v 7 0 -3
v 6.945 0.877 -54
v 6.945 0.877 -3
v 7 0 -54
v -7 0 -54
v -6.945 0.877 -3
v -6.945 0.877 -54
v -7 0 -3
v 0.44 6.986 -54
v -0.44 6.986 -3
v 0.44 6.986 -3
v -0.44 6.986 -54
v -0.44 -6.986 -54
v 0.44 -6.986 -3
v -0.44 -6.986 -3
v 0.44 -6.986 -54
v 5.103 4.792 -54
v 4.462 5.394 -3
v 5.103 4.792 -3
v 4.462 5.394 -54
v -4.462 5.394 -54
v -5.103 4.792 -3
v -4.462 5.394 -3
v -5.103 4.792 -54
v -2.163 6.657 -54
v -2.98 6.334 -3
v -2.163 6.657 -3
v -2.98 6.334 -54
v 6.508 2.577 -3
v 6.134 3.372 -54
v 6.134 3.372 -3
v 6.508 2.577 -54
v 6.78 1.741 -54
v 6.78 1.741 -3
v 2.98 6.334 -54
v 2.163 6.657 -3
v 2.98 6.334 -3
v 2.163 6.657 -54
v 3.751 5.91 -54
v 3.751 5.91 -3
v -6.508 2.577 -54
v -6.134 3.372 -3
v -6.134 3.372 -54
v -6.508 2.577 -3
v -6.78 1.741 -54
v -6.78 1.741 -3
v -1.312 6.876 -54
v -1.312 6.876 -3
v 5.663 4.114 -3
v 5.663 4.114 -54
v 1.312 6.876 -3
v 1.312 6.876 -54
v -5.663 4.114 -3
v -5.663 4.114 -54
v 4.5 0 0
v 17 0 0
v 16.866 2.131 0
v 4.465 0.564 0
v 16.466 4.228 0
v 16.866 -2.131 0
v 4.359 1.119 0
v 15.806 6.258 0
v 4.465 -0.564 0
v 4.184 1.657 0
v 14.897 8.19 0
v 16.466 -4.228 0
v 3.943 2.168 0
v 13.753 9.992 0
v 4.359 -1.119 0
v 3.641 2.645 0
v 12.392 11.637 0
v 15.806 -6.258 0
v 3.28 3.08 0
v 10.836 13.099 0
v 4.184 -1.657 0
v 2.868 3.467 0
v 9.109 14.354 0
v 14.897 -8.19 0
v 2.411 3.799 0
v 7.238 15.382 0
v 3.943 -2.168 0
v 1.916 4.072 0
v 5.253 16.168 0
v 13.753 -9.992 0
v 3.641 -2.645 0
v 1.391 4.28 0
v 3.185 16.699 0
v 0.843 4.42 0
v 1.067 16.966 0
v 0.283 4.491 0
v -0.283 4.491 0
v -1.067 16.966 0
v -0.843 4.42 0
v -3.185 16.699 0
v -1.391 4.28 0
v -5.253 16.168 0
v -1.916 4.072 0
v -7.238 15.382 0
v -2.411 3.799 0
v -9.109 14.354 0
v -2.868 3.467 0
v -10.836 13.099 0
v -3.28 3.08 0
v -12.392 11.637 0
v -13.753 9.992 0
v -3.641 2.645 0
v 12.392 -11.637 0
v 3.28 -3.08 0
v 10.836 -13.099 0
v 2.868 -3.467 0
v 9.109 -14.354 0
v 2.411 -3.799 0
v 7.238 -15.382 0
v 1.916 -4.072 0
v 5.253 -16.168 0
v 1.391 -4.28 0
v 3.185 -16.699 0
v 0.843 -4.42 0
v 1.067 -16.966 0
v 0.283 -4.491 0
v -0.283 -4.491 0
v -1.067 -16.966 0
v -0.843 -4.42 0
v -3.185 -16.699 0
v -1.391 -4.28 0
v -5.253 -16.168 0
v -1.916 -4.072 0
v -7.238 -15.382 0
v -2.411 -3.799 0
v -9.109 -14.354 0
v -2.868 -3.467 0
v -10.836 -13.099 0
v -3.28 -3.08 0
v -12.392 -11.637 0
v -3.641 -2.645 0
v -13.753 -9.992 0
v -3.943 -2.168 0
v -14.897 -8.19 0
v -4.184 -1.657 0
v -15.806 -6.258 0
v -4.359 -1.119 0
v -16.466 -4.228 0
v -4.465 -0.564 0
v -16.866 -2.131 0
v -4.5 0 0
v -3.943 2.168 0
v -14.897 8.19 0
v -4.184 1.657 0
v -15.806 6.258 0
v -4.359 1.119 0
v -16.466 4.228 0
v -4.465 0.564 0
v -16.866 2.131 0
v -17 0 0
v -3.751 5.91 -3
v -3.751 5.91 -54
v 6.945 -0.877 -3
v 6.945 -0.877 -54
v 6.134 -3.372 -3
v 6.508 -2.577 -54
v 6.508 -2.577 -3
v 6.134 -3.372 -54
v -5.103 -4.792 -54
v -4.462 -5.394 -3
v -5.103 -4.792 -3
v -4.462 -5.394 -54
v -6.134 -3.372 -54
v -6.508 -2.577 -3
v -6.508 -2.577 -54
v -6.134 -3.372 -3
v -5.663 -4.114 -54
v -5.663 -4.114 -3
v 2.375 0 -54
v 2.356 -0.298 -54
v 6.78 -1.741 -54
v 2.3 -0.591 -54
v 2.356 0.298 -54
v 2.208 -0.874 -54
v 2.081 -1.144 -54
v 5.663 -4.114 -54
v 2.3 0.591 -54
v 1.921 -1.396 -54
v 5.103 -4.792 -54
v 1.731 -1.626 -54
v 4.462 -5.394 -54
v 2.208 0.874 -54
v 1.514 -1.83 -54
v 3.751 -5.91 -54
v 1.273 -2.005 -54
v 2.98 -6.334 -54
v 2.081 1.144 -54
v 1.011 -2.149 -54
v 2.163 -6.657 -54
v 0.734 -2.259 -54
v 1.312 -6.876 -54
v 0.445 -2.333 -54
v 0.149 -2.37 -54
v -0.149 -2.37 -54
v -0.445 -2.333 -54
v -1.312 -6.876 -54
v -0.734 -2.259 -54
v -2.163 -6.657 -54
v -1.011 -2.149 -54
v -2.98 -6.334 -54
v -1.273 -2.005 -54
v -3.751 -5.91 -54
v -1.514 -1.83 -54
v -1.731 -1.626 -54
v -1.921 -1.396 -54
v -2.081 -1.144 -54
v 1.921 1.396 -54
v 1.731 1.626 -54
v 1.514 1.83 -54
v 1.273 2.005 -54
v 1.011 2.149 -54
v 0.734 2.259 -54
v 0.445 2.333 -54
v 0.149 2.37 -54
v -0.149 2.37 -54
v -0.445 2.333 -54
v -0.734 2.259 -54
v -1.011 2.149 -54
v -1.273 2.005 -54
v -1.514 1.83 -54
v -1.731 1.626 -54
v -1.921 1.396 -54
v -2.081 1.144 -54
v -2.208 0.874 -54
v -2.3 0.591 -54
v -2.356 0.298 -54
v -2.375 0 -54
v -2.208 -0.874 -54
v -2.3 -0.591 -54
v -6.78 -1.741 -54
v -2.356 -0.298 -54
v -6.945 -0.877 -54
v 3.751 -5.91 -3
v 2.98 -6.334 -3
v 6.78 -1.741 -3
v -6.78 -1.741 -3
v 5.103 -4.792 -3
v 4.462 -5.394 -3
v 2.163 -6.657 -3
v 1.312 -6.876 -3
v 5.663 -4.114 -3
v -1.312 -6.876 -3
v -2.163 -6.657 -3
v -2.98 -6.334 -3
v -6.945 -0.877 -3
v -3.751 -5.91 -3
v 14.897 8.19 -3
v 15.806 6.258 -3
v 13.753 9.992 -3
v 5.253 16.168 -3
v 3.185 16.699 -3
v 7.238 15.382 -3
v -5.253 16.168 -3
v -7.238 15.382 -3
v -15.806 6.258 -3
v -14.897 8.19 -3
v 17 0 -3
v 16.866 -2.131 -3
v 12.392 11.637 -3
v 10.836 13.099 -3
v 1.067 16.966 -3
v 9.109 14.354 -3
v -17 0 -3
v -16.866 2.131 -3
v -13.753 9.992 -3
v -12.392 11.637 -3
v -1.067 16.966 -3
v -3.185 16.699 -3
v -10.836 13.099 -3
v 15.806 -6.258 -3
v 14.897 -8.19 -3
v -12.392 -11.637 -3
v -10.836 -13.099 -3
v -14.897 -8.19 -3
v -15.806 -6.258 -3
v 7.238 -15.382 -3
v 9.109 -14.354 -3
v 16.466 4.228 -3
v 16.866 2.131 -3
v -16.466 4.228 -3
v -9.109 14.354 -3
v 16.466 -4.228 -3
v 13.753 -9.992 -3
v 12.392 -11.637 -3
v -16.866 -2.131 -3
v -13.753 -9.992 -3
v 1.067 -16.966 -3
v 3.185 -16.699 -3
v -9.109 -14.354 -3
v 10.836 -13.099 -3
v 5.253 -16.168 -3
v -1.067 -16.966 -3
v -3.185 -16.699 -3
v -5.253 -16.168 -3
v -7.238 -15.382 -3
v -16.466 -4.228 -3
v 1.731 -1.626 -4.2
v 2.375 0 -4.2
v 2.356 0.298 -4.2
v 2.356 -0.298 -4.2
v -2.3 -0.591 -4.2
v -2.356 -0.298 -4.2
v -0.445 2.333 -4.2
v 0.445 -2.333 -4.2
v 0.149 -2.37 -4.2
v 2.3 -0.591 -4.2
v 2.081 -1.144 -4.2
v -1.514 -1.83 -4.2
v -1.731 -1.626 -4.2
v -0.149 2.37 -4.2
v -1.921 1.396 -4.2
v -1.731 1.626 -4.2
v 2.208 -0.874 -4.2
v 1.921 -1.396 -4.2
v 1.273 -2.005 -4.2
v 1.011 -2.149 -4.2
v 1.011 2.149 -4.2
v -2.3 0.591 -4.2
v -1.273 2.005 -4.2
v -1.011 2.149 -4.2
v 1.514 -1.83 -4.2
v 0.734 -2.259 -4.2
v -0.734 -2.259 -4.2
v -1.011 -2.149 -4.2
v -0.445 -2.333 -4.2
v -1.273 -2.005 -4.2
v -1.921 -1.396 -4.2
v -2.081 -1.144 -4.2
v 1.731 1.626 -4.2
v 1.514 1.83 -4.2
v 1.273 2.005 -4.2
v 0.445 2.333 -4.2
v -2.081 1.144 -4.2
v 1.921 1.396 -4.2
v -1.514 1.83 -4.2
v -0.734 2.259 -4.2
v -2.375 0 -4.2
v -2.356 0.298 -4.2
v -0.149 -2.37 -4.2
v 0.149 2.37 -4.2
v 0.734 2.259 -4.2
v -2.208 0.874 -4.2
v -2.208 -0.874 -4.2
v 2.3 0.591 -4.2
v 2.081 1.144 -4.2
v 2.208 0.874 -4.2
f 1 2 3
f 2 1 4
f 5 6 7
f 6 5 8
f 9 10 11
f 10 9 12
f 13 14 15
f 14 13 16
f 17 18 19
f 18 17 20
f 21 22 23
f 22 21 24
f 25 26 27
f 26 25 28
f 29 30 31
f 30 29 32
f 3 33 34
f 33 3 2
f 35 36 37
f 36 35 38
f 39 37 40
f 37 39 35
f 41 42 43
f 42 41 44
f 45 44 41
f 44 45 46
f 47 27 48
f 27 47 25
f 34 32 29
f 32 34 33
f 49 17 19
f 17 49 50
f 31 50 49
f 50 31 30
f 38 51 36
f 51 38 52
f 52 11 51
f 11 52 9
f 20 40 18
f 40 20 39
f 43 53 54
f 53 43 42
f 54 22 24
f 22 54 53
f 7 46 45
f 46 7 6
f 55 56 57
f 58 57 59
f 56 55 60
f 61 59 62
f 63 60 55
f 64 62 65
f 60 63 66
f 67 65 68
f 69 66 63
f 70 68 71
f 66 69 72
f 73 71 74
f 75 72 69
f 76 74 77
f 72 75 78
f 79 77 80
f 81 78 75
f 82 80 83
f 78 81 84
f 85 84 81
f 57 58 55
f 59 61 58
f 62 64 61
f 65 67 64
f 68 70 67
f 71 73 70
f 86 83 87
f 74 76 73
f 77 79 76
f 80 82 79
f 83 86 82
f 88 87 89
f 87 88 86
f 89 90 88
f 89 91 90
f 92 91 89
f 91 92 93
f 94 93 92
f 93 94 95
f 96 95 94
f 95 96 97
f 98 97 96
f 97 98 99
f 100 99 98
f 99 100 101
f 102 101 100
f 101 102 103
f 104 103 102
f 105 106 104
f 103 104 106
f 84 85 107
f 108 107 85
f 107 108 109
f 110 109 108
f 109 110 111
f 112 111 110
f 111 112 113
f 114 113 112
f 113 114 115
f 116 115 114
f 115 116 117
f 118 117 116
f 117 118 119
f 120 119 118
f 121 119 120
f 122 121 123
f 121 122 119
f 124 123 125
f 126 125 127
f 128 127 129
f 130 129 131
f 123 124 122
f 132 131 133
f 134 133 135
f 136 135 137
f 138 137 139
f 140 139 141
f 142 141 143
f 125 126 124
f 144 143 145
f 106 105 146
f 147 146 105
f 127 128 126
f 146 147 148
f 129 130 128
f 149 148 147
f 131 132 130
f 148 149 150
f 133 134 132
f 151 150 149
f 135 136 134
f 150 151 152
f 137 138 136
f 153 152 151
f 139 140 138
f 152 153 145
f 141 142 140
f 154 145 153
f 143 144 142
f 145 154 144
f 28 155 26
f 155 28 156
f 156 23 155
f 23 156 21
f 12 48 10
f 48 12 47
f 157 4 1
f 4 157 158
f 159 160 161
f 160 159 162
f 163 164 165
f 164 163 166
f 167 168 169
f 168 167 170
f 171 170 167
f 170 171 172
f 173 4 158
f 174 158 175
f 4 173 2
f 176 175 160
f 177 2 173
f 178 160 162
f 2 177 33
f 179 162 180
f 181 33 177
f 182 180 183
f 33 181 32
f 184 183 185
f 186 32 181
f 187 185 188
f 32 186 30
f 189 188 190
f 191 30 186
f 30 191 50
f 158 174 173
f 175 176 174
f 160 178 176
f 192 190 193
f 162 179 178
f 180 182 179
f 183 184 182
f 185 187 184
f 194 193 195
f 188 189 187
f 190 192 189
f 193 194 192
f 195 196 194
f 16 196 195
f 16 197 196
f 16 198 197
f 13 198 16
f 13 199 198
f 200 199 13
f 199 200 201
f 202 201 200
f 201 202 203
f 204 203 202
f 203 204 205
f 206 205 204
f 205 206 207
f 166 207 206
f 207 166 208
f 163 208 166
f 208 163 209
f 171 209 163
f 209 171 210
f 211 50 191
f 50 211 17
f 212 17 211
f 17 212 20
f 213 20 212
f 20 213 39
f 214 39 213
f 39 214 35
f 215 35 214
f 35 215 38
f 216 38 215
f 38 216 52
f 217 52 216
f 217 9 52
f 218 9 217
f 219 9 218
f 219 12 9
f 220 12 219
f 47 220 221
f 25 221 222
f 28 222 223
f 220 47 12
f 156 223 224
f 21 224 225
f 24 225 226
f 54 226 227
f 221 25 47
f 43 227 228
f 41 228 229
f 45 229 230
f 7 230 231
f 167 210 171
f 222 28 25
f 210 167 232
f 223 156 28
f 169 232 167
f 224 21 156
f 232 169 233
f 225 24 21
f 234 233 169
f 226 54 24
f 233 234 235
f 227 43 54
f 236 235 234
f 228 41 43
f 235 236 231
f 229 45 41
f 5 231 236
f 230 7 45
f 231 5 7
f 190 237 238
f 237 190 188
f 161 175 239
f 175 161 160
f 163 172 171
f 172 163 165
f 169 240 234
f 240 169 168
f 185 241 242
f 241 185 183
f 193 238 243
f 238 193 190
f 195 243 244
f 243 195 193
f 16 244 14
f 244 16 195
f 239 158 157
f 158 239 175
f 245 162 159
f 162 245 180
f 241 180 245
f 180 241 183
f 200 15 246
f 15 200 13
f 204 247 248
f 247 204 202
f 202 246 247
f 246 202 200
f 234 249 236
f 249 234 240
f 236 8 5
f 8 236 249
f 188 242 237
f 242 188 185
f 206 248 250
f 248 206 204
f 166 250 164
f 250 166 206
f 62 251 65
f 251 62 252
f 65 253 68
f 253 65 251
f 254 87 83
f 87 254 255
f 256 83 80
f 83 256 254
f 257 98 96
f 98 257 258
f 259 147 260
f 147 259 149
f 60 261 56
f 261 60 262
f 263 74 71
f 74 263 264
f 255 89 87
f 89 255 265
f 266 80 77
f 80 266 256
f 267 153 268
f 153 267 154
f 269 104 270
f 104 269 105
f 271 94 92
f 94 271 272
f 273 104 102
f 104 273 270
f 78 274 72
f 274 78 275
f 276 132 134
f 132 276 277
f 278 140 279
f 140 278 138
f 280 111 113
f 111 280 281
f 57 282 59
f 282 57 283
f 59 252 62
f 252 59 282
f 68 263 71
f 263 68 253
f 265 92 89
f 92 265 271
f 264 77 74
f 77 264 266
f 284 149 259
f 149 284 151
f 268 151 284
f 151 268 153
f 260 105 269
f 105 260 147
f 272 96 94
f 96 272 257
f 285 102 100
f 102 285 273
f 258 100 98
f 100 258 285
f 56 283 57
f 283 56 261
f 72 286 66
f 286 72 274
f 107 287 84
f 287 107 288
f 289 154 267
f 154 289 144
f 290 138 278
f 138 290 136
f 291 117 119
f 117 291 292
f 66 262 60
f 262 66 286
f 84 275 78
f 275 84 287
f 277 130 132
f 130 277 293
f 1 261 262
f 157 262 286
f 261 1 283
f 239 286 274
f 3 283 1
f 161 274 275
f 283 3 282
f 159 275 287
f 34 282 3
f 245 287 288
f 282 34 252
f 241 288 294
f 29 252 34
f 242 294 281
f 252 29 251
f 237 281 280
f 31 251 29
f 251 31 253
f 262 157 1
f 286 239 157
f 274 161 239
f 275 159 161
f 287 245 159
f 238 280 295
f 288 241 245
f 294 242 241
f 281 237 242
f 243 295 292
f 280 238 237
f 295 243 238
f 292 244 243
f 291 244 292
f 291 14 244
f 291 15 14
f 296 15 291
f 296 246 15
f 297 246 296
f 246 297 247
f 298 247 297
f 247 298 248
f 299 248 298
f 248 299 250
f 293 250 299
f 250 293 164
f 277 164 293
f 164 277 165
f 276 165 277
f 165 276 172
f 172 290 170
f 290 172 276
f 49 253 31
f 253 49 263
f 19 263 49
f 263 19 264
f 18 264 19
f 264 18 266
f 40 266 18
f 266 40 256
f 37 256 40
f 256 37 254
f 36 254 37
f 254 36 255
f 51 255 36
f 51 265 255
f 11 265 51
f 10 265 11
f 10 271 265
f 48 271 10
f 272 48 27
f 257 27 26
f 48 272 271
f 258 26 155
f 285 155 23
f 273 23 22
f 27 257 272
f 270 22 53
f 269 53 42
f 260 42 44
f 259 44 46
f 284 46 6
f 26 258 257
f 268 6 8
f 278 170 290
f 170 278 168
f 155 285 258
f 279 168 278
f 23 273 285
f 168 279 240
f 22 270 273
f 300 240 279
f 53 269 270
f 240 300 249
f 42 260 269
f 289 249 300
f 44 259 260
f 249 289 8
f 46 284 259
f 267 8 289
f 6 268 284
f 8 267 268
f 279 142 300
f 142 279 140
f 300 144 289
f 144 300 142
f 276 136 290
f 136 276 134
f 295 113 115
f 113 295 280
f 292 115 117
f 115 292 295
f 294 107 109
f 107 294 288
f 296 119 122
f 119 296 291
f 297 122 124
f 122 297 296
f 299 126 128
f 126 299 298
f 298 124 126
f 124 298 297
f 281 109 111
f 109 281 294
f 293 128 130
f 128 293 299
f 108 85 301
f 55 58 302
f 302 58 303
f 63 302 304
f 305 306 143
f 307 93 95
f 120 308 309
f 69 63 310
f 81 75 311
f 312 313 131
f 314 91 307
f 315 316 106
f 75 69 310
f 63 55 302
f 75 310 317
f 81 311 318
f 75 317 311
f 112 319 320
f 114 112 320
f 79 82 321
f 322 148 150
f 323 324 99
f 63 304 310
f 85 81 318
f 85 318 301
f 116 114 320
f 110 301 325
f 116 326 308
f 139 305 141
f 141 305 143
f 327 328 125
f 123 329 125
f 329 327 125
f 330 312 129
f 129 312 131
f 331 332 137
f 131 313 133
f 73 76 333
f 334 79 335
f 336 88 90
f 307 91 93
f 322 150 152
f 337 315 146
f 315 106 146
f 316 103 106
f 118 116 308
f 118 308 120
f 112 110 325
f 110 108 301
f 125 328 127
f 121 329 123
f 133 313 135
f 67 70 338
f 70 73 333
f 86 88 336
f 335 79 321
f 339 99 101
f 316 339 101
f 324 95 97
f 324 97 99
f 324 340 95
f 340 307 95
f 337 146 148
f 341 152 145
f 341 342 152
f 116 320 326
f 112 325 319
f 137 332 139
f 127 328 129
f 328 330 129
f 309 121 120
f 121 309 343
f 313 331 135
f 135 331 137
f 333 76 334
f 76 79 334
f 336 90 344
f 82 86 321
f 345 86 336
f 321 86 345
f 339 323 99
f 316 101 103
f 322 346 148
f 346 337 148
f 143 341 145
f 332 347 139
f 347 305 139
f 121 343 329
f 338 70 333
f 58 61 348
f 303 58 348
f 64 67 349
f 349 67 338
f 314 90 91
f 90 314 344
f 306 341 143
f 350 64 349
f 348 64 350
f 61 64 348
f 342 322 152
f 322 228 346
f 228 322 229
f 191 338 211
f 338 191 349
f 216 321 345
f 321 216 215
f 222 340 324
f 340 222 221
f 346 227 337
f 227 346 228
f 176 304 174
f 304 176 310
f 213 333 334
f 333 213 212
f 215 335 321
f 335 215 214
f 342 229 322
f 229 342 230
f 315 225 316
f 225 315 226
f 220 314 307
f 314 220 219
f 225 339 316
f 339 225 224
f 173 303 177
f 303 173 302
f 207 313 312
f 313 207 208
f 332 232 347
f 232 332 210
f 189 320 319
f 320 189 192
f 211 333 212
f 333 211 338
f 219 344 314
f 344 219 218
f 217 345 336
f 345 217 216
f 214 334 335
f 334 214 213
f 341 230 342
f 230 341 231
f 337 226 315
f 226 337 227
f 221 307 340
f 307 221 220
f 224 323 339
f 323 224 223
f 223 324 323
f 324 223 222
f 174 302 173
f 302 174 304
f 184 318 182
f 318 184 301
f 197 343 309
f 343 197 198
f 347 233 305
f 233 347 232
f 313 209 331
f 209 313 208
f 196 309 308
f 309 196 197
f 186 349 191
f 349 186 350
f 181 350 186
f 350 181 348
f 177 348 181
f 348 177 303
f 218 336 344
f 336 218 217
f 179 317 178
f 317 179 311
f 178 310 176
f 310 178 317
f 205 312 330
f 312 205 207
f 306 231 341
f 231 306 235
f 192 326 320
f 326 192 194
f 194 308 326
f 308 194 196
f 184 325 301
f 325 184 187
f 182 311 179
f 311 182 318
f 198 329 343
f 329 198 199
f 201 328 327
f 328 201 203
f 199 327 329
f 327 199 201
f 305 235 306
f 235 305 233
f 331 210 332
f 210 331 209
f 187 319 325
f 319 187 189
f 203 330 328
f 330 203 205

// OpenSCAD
$fn = 50;


difference() {
	union() {
		translate(v = [0, 0, -54.0000000000]) {
			cylinder(h = 54, r = 7.0000000000);
		}
		translate(v = [0, 0, -3.0000000000]) {
			cylinder(h = 3, r = 17.0000000000);
		}
	}
	union() {
		translate(v = [0, 0, 0]) {
			rotate(a = [0, 0, 0]) {
				difference() {
					union() {
						#translate(v = [0, 0, -54.0000000000]) {
							cylinder(h = 54, r = 2.2500000000);
						}
						#translate(v = [0, 0, -4.2000000000]) {
							cylinder(h = 4.2000000000, r1 = 2.3750000000, r2 = 4.5000000000);
						}
						#translate(v = [0, 0, -54.0000000000]) {
							cylinder(h = 54, r = 2.3750000000);
						}
						#translate(v = [0, 0, -54.0000000000]) {
							cylinder(h = 54, r = 2.2500000000);
						}
					}
					union();
				}
			}
		}
	}
}
